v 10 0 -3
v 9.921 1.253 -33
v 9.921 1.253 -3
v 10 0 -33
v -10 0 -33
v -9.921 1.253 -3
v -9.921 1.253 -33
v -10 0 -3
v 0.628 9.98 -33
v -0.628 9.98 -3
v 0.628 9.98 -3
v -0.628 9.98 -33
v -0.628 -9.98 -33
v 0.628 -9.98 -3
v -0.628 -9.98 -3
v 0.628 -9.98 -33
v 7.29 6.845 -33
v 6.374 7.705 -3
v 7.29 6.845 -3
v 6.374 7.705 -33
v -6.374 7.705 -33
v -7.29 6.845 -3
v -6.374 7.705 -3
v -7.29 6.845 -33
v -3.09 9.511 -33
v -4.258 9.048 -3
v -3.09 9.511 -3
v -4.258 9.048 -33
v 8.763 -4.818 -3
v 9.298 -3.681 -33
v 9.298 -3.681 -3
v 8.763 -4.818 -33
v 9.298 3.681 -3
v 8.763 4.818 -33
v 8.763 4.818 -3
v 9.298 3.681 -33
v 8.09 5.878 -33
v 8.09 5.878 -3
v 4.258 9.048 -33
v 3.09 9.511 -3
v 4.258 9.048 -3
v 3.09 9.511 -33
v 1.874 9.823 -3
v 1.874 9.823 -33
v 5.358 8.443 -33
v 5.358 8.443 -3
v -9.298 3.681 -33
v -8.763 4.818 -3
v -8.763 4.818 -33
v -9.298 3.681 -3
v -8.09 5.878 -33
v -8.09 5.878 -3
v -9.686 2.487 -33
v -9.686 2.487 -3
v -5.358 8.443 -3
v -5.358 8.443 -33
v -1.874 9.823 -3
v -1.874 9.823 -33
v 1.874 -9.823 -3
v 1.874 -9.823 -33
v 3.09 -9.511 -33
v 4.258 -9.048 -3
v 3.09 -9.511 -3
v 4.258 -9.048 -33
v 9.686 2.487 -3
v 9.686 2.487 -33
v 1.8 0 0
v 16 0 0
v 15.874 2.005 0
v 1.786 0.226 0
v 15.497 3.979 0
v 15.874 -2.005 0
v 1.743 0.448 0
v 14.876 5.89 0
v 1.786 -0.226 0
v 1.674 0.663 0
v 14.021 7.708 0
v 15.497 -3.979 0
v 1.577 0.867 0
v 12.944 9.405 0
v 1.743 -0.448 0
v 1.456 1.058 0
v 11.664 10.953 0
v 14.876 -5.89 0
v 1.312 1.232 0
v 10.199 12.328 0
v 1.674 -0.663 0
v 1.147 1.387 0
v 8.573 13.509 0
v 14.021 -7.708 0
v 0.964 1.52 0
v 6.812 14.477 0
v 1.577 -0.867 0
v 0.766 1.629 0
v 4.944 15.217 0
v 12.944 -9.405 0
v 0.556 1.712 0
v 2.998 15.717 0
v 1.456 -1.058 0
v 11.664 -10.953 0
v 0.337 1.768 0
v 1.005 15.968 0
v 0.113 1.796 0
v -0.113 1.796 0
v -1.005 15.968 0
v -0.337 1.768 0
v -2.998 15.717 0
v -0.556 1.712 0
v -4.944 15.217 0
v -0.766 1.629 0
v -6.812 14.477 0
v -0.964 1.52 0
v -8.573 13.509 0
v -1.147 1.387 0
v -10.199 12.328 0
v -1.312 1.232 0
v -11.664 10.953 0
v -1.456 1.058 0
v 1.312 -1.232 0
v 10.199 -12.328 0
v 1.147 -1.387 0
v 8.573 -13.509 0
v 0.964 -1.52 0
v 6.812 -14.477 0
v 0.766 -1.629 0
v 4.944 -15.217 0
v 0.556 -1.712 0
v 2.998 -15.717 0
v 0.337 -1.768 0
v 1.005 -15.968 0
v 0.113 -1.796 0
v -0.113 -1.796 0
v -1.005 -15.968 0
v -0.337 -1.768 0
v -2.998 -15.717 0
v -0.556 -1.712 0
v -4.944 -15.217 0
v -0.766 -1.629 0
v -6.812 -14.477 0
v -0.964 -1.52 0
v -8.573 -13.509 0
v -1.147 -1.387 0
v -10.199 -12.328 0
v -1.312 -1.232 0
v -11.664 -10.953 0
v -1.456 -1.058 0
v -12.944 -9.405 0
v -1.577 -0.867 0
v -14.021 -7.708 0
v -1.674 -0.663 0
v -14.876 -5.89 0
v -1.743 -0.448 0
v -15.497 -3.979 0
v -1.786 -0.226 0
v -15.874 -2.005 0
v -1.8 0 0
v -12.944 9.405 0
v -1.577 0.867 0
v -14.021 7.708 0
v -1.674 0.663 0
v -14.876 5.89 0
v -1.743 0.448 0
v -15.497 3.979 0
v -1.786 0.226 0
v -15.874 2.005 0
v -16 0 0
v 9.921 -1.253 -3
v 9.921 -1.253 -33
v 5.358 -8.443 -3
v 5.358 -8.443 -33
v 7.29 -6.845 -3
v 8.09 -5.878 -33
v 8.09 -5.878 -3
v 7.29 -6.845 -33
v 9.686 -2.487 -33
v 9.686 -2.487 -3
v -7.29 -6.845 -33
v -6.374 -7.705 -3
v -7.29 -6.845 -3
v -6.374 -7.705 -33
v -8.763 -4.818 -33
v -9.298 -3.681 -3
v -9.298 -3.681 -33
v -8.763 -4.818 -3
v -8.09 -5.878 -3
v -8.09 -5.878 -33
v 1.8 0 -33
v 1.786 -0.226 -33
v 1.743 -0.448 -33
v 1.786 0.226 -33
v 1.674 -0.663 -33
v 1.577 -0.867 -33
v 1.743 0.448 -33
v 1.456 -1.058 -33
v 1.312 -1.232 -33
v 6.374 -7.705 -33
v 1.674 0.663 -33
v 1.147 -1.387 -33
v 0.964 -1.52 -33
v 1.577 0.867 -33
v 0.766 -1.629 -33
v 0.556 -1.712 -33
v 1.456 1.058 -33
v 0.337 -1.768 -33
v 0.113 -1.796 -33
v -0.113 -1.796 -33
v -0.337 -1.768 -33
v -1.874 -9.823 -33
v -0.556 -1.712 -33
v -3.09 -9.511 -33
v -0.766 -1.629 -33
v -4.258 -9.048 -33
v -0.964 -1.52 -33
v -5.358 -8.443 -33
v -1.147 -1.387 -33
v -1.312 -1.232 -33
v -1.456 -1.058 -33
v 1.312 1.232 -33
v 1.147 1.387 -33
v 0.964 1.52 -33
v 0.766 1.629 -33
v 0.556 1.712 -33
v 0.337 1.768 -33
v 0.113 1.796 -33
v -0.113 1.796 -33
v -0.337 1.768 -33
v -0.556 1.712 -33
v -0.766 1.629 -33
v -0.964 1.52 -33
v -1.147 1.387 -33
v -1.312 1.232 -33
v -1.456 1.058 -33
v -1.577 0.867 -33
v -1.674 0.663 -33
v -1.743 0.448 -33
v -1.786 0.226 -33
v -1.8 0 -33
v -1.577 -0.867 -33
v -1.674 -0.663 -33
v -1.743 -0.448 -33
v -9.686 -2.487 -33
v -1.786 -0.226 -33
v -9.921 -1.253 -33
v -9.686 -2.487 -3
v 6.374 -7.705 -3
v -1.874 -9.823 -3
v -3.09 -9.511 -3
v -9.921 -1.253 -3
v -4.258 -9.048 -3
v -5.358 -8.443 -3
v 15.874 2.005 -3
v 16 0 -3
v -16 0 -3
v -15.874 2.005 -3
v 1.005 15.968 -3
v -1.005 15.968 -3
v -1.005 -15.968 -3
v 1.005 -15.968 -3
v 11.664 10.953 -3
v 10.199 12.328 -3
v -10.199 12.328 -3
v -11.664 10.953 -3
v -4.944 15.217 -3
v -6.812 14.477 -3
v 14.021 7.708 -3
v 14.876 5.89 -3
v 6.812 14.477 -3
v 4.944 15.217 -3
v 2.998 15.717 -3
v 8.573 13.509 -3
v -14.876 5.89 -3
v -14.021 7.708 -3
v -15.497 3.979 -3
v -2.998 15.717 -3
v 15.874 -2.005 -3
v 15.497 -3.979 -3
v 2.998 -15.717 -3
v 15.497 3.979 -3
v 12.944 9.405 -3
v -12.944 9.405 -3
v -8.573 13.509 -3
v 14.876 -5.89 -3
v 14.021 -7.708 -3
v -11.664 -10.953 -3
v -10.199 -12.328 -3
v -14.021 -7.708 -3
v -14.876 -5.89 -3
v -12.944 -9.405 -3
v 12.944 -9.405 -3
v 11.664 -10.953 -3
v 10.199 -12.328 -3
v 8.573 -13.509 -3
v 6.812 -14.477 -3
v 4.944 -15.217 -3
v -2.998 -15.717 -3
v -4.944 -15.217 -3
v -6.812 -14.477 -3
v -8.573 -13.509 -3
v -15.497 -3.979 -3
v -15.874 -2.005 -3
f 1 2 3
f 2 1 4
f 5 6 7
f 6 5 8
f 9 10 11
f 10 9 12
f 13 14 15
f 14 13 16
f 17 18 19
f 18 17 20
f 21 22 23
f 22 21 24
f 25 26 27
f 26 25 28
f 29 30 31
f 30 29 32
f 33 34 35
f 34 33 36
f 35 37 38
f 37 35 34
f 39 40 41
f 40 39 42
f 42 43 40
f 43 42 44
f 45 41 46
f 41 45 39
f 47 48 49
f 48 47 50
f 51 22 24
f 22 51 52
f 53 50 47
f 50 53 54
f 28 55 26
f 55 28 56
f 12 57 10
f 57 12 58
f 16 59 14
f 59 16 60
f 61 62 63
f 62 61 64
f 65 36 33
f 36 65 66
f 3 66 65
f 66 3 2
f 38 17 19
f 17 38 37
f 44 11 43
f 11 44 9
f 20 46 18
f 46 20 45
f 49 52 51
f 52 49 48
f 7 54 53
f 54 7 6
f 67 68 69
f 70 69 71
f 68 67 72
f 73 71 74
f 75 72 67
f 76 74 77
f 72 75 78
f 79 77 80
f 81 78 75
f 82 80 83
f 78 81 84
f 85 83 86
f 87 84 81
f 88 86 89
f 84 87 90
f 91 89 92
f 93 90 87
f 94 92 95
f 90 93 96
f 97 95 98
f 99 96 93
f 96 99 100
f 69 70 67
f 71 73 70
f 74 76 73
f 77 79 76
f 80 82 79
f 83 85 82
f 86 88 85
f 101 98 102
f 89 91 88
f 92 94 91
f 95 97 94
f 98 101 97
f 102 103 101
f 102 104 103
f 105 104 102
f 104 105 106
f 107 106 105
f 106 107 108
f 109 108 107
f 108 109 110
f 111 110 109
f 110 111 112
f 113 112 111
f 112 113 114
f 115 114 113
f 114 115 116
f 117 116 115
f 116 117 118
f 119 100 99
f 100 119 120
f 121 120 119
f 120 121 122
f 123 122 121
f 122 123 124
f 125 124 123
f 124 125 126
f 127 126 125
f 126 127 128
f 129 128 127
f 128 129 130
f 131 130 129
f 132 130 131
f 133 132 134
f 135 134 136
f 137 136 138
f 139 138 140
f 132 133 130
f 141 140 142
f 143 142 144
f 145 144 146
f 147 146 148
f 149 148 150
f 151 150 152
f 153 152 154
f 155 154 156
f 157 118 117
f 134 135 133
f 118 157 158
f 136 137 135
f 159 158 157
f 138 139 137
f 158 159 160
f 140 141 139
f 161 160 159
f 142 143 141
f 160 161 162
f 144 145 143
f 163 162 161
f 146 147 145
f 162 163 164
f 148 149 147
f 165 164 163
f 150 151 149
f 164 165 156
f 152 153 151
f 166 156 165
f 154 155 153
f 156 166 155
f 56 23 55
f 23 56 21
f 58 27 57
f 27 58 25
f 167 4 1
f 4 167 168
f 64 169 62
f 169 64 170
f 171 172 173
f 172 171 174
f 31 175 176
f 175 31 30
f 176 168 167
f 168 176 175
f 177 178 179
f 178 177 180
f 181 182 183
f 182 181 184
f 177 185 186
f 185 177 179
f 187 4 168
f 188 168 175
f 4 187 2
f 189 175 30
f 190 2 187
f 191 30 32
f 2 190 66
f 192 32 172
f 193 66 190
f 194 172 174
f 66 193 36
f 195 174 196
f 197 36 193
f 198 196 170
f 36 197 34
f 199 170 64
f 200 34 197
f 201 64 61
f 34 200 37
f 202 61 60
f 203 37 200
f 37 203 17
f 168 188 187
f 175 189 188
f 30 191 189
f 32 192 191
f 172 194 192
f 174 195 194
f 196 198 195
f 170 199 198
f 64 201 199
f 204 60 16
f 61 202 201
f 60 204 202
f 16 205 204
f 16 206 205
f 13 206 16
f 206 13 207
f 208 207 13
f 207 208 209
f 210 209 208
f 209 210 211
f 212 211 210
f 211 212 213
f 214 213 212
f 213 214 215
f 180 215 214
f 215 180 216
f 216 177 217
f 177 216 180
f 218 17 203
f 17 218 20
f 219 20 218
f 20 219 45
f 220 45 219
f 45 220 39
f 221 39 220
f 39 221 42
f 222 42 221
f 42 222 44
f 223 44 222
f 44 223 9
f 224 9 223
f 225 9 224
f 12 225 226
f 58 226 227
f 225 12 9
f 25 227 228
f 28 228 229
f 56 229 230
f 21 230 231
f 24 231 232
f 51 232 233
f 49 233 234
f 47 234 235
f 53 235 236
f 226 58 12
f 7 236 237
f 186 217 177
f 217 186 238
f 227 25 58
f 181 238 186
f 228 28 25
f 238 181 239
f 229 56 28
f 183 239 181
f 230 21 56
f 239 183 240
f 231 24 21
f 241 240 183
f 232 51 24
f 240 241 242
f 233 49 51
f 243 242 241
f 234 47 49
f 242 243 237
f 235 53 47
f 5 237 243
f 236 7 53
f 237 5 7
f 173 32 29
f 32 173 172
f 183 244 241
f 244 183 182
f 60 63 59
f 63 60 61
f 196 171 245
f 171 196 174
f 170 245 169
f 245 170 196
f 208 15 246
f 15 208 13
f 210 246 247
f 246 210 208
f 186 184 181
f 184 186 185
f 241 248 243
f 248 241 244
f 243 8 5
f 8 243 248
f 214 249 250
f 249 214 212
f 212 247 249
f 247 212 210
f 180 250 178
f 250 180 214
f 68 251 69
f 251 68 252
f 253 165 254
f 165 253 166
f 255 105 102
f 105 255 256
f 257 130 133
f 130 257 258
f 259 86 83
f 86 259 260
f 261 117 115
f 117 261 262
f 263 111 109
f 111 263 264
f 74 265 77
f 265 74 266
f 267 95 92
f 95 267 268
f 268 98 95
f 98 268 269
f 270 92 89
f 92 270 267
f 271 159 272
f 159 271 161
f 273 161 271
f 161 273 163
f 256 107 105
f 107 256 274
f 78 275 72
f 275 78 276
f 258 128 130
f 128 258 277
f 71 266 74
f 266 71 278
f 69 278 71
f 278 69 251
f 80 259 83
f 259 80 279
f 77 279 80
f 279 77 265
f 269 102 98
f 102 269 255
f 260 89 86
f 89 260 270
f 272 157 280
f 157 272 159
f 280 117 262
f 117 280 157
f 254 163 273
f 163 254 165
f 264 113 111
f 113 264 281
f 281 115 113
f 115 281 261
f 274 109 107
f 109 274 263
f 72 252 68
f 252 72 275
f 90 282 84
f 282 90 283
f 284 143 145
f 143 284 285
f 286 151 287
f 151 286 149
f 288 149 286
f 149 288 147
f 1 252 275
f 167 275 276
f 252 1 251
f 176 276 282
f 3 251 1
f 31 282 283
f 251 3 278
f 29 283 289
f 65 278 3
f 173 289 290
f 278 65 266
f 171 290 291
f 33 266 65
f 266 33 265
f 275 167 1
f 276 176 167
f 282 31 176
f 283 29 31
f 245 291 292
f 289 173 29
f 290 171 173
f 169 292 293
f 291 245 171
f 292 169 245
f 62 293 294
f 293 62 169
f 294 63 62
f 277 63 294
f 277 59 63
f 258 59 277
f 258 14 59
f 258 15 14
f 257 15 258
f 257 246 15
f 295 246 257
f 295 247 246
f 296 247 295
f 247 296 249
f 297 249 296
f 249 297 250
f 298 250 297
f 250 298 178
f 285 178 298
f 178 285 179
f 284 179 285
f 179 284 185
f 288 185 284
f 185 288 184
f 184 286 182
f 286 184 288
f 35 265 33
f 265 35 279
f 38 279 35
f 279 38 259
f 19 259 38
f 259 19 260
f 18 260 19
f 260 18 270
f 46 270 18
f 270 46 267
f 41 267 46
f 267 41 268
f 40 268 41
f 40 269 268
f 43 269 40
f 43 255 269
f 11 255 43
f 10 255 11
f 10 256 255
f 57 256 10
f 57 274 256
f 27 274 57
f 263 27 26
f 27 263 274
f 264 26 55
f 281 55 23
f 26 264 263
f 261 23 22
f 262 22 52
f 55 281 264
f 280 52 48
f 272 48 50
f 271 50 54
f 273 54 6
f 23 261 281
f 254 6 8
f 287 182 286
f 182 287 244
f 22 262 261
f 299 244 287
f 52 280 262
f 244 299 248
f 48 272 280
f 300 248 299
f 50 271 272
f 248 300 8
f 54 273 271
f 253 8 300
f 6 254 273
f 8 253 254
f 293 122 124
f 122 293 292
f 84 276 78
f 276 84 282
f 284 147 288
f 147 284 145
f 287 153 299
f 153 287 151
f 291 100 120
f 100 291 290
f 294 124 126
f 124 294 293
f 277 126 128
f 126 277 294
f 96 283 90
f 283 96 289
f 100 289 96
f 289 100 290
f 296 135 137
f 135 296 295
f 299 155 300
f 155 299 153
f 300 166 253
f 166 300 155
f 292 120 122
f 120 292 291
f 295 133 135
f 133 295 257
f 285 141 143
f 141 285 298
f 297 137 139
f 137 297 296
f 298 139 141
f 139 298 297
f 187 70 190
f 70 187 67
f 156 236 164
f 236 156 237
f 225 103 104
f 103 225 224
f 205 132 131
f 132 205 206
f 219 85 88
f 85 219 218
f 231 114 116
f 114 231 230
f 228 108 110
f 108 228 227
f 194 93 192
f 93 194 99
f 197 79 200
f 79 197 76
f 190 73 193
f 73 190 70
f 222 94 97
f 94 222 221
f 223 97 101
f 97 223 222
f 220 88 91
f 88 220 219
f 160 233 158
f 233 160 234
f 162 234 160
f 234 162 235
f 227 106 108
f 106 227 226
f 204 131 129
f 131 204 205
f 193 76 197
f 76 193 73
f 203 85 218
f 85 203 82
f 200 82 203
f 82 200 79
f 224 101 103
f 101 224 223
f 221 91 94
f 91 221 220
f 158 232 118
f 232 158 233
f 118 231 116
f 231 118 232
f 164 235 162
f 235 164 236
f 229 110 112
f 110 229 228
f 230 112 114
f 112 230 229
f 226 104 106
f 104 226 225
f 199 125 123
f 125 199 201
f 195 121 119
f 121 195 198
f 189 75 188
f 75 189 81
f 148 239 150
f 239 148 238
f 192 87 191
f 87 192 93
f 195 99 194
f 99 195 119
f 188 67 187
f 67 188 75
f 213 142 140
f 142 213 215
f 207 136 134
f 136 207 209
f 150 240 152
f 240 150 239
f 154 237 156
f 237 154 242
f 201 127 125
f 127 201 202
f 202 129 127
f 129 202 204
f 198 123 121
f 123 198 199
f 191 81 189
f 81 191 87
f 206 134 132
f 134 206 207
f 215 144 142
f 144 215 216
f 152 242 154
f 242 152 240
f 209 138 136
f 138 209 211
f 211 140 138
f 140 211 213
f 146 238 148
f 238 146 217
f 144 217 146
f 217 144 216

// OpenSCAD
$fn = 50;


difference() {
	union() {
		translate(v = [0, 0, -33.0000000000]) {
			cylinder(h = 33, r = 10.0000000000);
		}
		translate(v = [0, 0, -3.0000000000]) {
			cylinder(h = 3, r = 16.0000000000);
		}
	}
	union() {
		#translate(v = [0, 0, -33]) {
			cylinder(h = 33, r = 1.8000000000);
		}
	}
}
